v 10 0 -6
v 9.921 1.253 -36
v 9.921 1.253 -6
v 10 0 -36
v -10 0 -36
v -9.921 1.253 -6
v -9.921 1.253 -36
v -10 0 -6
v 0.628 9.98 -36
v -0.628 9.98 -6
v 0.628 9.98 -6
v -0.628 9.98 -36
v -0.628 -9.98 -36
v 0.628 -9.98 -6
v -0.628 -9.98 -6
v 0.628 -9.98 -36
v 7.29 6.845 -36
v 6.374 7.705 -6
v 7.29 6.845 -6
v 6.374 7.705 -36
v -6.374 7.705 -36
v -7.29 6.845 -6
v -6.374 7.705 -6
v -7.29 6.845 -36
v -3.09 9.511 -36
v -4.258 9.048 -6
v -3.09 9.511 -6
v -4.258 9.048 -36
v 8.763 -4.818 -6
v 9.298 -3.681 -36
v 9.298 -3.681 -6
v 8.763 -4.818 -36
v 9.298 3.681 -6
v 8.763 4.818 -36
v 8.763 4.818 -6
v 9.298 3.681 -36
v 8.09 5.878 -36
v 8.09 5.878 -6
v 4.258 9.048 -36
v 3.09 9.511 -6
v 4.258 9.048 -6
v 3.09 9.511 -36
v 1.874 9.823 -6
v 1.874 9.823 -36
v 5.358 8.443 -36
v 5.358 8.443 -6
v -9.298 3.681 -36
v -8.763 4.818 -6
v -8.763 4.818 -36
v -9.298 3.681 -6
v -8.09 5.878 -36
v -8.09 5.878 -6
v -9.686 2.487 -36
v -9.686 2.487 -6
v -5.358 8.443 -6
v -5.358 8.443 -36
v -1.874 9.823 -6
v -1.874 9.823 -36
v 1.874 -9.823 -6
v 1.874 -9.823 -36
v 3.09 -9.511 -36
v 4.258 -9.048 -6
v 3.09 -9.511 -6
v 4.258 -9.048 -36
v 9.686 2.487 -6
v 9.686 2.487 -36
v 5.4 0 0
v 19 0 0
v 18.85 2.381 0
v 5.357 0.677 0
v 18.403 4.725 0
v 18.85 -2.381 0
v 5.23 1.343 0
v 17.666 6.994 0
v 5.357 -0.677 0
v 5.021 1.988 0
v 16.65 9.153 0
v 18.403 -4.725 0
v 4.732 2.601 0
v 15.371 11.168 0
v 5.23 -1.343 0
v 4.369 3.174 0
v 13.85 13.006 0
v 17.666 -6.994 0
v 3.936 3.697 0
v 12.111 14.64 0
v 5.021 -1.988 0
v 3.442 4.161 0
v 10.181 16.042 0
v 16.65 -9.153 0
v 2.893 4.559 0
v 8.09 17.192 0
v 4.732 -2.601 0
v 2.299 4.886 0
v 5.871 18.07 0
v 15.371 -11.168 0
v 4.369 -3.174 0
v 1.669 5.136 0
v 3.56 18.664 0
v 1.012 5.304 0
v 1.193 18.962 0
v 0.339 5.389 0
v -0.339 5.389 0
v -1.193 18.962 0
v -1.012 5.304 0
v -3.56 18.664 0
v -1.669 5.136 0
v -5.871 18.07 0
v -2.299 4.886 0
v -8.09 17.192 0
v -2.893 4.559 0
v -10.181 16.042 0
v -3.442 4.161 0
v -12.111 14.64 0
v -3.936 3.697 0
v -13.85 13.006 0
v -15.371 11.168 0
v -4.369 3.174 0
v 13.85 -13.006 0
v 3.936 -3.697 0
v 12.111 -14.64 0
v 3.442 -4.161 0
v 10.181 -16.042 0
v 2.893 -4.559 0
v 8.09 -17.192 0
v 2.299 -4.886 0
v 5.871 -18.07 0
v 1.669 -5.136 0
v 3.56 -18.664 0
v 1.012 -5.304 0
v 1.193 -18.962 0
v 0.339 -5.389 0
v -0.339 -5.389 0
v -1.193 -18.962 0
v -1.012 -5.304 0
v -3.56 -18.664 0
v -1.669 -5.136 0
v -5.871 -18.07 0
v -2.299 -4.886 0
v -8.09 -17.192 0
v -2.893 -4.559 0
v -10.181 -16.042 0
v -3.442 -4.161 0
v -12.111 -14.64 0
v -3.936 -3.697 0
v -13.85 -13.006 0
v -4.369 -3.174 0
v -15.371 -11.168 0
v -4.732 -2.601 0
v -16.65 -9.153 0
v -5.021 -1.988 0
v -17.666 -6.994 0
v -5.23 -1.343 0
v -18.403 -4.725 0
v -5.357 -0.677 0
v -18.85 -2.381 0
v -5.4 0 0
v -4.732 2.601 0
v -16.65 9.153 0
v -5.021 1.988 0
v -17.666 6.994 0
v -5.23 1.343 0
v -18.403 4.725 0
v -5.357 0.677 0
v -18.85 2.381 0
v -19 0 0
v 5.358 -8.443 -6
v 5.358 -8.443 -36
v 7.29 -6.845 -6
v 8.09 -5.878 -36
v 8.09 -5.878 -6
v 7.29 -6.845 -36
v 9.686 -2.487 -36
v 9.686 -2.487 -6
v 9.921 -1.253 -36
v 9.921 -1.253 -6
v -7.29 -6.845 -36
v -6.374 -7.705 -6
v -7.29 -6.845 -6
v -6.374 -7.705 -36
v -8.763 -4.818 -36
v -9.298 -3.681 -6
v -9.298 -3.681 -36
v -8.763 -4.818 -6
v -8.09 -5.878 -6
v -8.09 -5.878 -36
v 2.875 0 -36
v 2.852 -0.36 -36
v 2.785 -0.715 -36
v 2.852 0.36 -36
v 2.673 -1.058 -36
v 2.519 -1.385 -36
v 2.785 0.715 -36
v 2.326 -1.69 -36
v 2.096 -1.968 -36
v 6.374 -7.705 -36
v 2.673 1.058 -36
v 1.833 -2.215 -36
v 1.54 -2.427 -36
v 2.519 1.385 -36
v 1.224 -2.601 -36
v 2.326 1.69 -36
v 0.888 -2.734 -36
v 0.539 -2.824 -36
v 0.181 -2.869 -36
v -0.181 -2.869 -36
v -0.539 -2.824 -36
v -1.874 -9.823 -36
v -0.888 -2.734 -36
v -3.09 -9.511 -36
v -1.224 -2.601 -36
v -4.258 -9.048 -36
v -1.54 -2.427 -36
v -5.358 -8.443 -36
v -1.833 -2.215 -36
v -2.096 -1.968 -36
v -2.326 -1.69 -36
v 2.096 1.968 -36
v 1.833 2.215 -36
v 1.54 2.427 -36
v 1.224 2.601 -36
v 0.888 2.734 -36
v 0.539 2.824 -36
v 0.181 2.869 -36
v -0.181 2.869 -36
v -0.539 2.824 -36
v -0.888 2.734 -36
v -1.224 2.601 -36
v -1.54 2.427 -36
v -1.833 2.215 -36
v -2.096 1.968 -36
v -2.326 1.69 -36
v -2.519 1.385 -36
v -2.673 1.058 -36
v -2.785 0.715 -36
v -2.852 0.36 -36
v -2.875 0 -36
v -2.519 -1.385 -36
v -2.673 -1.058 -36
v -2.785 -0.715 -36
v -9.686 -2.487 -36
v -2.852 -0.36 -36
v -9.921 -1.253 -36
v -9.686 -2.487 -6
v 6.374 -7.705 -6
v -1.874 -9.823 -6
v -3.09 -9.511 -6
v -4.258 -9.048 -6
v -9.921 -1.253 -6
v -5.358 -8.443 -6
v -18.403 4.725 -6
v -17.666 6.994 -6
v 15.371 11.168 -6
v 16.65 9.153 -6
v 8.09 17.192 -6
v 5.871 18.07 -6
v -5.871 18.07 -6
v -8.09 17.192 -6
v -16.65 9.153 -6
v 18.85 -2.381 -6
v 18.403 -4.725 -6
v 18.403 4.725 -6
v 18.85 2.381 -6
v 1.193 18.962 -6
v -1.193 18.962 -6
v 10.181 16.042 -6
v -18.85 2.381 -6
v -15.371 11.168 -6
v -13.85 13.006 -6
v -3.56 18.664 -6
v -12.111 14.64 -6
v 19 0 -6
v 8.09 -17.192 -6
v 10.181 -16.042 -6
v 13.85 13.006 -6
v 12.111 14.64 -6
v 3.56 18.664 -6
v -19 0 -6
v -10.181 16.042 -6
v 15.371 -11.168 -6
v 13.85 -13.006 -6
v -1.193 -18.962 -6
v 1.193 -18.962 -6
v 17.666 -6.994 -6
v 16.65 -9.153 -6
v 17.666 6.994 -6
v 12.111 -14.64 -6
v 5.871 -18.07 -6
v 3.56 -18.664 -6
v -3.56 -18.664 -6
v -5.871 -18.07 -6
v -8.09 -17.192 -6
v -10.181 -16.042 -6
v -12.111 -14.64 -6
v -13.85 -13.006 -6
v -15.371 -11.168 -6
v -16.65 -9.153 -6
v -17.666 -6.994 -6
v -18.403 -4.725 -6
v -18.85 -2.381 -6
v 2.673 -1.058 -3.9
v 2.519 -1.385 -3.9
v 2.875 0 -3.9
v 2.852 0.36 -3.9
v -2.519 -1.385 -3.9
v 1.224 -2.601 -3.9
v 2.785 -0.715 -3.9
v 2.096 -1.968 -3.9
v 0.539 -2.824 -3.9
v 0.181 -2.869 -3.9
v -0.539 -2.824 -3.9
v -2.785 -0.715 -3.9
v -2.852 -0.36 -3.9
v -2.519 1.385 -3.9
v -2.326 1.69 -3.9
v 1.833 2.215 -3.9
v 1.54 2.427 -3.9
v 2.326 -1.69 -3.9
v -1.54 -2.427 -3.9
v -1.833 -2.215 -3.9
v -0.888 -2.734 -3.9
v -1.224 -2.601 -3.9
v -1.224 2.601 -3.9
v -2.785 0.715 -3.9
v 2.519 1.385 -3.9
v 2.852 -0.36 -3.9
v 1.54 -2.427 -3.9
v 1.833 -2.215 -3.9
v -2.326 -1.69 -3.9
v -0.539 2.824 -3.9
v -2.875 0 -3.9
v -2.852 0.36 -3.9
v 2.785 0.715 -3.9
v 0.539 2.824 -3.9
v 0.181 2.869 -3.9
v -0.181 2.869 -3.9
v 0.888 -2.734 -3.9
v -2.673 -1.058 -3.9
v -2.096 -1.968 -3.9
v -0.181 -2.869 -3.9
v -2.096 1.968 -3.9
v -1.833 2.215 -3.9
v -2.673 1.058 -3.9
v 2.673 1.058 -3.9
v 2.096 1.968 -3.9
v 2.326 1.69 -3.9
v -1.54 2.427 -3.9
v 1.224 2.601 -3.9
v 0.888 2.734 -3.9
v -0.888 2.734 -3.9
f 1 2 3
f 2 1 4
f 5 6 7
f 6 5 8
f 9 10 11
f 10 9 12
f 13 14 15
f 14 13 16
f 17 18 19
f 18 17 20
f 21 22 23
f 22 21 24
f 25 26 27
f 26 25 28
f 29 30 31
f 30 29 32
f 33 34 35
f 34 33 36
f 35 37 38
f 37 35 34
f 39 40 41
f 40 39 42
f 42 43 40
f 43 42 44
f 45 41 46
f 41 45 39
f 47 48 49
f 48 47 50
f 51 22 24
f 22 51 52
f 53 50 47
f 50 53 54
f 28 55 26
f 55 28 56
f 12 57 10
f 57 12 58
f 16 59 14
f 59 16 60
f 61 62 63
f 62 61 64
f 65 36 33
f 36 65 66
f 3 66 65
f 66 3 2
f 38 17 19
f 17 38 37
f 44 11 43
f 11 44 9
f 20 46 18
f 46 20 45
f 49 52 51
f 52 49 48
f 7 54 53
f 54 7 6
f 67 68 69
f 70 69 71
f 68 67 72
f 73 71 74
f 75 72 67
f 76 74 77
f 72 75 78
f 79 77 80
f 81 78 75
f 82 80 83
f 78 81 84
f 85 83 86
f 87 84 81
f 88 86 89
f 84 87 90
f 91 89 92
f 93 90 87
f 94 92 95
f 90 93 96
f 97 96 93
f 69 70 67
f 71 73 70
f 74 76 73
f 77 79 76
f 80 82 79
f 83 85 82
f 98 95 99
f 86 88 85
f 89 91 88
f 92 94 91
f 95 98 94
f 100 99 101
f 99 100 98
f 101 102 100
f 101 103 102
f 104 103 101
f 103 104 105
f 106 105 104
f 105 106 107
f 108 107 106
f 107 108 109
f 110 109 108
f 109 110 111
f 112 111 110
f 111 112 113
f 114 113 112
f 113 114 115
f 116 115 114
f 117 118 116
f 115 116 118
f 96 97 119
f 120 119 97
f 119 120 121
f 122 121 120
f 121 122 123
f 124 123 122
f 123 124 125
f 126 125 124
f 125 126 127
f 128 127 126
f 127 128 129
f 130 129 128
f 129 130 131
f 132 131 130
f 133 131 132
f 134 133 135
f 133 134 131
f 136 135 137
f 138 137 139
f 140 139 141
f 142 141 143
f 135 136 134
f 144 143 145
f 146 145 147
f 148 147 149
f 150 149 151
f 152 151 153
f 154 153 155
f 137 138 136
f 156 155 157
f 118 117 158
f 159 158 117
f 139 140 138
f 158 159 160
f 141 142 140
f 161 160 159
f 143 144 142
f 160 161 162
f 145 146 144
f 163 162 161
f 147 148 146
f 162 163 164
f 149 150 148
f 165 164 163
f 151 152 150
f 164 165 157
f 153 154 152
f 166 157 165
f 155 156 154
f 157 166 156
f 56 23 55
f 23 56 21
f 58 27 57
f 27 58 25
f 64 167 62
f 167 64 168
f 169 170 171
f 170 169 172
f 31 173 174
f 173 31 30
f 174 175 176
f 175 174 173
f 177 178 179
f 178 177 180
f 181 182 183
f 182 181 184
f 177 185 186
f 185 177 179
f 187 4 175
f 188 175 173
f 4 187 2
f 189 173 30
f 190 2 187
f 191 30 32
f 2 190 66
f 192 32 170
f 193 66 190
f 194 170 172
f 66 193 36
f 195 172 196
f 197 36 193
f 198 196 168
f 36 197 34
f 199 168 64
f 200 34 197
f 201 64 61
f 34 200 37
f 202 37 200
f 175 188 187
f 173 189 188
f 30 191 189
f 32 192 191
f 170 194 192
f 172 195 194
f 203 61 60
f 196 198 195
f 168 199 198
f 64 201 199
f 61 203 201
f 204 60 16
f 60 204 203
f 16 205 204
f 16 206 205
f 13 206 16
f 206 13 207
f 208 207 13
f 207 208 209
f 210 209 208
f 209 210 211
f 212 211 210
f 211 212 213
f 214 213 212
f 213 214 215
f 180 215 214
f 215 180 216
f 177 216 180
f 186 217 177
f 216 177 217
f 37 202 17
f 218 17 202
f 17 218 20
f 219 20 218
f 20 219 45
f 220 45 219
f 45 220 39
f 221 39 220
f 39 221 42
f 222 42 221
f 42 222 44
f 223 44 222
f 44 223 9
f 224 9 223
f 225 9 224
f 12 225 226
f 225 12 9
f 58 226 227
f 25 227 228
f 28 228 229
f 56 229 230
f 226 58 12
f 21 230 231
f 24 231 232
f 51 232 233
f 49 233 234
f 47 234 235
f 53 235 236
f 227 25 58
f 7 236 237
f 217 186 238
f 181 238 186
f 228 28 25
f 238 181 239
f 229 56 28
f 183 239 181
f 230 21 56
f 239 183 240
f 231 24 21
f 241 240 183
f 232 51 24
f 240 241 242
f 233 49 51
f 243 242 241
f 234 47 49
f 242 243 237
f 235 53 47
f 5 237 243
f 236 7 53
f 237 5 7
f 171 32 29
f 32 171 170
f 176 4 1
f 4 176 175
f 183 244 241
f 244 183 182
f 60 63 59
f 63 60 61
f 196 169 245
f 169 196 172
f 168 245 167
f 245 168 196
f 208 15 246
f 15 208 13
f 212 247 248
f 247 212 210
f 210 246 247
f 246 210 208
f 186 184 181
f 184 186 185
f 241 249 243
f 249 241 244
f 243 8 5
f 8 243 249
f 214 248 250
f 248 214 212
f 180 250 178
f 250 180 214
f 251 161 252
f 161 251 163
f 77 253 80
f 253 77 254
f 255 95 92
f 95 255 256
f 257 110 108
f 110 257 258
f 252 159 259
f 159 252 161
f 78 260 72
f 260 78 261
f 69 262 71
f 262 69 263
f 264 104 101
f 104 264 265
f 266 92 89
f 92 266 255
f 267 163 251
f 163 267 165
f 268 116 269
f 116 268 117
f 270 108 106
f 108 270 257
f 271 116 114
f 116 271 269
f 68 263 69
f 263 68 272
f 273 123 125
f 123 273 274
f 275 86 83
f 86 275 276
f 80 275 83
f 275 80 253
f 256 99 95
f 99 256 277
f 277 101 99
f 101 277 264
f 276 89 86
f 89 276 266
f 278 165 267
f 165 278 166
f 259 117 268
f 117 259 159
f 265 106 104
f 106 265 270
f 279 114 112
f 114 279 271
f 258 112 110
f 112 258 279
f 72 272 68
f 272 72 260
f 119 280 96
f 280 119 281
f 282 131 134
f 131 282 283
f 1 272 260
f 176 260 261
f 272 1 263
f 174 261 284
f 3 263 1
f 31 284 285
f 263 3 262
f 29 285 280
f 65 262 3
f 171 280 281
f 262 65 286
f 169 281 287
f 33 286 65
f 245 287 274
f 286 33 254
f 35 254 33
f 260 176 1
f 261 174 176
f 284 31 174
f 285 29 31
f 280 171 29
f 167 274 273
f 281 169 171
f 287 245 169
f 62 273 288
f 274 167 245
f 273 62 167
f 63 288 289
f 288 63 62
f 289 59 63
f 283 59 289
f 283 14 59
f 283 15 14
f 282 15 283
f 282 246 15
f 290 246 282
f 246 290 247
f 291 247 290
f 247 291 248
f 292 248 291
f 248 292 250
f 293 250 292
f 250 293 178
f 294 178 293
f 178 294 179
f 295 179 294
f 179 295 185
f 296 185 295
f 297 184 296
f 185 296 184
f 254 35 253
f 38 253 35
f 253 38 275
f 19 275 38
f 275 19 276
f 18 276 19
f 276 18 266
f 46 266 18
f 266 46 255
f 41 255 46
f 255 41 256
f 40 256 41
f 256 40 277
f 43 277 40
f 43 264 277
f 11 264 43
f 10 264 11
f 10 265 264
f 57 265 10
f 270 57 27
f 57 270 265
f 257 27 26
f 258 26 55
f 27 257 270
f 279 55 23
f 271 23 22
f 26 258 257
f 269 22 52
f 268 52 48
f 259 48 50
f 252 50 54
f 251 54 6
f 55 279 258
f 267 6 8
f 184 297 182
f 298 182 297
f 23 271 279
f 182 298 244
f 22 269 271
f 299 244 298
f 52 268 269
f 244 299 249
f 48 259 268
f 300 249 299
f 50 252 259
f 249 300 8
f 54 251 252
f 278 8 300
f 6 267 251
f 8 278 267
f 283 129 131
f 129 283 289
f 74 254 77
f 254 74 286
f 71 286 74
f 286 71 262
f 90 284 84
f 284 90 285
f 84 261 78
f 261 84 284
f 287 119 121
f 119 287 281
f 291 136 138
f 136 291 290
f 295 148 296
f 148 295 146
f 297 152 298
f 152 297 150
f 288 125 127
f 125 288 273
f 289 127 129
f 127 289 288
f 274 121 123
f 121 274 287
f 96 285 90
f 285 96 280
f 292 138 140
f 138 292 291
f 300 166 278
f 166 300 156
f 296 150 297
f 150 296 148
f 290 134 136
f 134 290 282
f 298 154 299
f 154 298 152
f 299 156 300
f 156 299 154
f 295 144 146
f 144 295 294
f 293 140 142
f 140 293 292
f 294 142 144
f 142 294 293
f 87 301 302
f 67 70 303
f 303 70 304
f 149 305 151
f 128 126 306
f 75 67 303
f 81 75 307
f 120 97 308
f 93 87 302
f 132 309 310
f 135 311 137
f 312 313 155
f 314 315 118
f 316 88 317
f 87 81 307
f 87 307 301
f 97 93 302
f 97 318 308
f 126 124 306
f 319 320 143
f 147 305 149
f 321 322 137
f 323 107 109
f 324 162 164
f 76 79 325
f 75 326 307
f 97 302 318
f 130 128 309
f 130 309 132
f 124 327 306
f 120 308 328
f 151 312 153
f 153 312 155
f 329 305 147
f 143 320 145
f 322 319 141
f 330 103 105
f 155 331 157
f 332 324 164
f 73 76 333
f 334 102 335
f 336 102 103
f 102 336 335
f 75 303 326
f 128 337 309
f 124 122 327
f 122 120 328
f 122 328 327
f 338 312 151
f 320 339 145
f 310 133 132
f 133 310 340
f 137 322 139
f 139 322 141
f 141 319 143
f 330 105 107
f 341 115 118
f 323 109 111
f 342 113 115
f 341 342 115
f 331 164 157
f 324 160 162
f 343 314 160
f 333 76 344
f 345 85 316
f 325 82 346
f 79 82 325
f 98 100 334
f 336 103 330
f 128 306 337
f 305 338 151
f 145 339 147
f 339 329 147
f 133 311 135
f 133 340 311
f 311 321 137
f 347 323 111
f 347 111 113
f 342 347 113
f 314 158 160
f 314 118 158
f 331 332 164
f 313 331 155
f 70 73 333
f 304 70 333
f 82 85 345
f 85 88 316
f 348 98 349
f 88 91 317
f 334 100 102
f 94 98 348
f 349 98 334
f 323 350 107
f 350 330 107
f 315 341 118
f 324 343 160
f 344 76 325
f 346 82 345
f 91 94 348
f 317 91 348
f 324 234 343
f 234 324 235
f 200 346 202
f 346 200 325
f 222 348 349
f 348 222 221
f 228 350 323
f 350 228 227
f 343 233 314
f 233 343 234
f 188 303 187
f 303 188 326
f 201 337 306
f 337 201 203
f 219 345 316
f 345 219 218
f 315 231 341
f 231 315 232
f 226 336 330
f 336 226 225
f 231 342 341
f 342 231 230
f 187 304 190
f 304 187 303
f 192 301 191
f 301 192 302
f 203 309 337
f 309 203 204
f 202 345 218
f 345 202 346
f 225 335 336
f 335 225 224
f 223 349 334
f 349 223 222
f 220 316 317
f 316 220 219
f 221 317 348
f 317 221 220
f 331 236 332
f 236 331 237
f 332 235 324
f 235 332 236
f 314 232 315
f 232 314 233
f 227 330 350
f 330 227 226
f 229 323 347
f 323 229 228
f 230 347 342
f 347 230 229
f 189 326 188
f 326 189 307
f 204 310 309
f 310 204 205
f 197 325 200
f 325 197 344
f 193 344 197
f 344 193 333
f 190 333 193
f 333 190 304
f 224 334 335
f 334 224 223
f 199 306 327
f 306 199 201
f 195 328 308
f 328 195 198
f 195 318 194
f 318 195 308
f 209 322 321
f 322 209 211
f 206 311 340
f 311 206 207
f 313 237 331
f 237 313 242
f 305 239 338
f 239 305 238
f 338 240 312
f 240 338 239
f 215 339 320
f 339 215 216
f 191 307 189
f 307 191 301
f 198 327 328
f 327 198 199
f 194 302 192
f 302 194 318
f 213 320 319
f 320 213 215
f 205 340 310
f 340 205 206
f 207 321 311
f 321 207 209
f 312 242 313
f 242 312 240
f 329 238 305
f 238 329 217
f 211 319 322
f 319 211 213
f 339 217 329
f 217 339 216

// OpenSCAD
$fn = 50;


difference() {
	union() {
		translate(v = [0, 0, -36.0000000000]) {
			cylinder(h = 36, r = 10.0000000000);
		}
		translate(v = [0, 0, -6.0000000000]) {
			cylinder(h = 6, r = 19.0000000000);
		}
	}
	union() {
		translate(v = [0, 0, 0]) {
			rotate(a = [0, 0, 0]) {
				difference() {
					union() {
						#translate(v = [0, 0, -36.0000000000]) {
							cylinder(h = 36, r = 2.6000000000);
						}
						#translate(v = [0, 0, -3.9000000000]) {
							cylinder(h = 3.9000000000, r = 10.0000000000, r1 = 2.8750000000, r2 = 5.4000000000);
						}
						#translate(v = [0, 0, -36.0000000000]) {
							cylinder(h = 36, r = 2.8750000000);
						}
						#translate(v = [0, 0, -36.0000000000]) {
							cylinder(h = 36, r = 2.6000000000);
						}
					}
					union();
				}
			}
		}
	}
}
